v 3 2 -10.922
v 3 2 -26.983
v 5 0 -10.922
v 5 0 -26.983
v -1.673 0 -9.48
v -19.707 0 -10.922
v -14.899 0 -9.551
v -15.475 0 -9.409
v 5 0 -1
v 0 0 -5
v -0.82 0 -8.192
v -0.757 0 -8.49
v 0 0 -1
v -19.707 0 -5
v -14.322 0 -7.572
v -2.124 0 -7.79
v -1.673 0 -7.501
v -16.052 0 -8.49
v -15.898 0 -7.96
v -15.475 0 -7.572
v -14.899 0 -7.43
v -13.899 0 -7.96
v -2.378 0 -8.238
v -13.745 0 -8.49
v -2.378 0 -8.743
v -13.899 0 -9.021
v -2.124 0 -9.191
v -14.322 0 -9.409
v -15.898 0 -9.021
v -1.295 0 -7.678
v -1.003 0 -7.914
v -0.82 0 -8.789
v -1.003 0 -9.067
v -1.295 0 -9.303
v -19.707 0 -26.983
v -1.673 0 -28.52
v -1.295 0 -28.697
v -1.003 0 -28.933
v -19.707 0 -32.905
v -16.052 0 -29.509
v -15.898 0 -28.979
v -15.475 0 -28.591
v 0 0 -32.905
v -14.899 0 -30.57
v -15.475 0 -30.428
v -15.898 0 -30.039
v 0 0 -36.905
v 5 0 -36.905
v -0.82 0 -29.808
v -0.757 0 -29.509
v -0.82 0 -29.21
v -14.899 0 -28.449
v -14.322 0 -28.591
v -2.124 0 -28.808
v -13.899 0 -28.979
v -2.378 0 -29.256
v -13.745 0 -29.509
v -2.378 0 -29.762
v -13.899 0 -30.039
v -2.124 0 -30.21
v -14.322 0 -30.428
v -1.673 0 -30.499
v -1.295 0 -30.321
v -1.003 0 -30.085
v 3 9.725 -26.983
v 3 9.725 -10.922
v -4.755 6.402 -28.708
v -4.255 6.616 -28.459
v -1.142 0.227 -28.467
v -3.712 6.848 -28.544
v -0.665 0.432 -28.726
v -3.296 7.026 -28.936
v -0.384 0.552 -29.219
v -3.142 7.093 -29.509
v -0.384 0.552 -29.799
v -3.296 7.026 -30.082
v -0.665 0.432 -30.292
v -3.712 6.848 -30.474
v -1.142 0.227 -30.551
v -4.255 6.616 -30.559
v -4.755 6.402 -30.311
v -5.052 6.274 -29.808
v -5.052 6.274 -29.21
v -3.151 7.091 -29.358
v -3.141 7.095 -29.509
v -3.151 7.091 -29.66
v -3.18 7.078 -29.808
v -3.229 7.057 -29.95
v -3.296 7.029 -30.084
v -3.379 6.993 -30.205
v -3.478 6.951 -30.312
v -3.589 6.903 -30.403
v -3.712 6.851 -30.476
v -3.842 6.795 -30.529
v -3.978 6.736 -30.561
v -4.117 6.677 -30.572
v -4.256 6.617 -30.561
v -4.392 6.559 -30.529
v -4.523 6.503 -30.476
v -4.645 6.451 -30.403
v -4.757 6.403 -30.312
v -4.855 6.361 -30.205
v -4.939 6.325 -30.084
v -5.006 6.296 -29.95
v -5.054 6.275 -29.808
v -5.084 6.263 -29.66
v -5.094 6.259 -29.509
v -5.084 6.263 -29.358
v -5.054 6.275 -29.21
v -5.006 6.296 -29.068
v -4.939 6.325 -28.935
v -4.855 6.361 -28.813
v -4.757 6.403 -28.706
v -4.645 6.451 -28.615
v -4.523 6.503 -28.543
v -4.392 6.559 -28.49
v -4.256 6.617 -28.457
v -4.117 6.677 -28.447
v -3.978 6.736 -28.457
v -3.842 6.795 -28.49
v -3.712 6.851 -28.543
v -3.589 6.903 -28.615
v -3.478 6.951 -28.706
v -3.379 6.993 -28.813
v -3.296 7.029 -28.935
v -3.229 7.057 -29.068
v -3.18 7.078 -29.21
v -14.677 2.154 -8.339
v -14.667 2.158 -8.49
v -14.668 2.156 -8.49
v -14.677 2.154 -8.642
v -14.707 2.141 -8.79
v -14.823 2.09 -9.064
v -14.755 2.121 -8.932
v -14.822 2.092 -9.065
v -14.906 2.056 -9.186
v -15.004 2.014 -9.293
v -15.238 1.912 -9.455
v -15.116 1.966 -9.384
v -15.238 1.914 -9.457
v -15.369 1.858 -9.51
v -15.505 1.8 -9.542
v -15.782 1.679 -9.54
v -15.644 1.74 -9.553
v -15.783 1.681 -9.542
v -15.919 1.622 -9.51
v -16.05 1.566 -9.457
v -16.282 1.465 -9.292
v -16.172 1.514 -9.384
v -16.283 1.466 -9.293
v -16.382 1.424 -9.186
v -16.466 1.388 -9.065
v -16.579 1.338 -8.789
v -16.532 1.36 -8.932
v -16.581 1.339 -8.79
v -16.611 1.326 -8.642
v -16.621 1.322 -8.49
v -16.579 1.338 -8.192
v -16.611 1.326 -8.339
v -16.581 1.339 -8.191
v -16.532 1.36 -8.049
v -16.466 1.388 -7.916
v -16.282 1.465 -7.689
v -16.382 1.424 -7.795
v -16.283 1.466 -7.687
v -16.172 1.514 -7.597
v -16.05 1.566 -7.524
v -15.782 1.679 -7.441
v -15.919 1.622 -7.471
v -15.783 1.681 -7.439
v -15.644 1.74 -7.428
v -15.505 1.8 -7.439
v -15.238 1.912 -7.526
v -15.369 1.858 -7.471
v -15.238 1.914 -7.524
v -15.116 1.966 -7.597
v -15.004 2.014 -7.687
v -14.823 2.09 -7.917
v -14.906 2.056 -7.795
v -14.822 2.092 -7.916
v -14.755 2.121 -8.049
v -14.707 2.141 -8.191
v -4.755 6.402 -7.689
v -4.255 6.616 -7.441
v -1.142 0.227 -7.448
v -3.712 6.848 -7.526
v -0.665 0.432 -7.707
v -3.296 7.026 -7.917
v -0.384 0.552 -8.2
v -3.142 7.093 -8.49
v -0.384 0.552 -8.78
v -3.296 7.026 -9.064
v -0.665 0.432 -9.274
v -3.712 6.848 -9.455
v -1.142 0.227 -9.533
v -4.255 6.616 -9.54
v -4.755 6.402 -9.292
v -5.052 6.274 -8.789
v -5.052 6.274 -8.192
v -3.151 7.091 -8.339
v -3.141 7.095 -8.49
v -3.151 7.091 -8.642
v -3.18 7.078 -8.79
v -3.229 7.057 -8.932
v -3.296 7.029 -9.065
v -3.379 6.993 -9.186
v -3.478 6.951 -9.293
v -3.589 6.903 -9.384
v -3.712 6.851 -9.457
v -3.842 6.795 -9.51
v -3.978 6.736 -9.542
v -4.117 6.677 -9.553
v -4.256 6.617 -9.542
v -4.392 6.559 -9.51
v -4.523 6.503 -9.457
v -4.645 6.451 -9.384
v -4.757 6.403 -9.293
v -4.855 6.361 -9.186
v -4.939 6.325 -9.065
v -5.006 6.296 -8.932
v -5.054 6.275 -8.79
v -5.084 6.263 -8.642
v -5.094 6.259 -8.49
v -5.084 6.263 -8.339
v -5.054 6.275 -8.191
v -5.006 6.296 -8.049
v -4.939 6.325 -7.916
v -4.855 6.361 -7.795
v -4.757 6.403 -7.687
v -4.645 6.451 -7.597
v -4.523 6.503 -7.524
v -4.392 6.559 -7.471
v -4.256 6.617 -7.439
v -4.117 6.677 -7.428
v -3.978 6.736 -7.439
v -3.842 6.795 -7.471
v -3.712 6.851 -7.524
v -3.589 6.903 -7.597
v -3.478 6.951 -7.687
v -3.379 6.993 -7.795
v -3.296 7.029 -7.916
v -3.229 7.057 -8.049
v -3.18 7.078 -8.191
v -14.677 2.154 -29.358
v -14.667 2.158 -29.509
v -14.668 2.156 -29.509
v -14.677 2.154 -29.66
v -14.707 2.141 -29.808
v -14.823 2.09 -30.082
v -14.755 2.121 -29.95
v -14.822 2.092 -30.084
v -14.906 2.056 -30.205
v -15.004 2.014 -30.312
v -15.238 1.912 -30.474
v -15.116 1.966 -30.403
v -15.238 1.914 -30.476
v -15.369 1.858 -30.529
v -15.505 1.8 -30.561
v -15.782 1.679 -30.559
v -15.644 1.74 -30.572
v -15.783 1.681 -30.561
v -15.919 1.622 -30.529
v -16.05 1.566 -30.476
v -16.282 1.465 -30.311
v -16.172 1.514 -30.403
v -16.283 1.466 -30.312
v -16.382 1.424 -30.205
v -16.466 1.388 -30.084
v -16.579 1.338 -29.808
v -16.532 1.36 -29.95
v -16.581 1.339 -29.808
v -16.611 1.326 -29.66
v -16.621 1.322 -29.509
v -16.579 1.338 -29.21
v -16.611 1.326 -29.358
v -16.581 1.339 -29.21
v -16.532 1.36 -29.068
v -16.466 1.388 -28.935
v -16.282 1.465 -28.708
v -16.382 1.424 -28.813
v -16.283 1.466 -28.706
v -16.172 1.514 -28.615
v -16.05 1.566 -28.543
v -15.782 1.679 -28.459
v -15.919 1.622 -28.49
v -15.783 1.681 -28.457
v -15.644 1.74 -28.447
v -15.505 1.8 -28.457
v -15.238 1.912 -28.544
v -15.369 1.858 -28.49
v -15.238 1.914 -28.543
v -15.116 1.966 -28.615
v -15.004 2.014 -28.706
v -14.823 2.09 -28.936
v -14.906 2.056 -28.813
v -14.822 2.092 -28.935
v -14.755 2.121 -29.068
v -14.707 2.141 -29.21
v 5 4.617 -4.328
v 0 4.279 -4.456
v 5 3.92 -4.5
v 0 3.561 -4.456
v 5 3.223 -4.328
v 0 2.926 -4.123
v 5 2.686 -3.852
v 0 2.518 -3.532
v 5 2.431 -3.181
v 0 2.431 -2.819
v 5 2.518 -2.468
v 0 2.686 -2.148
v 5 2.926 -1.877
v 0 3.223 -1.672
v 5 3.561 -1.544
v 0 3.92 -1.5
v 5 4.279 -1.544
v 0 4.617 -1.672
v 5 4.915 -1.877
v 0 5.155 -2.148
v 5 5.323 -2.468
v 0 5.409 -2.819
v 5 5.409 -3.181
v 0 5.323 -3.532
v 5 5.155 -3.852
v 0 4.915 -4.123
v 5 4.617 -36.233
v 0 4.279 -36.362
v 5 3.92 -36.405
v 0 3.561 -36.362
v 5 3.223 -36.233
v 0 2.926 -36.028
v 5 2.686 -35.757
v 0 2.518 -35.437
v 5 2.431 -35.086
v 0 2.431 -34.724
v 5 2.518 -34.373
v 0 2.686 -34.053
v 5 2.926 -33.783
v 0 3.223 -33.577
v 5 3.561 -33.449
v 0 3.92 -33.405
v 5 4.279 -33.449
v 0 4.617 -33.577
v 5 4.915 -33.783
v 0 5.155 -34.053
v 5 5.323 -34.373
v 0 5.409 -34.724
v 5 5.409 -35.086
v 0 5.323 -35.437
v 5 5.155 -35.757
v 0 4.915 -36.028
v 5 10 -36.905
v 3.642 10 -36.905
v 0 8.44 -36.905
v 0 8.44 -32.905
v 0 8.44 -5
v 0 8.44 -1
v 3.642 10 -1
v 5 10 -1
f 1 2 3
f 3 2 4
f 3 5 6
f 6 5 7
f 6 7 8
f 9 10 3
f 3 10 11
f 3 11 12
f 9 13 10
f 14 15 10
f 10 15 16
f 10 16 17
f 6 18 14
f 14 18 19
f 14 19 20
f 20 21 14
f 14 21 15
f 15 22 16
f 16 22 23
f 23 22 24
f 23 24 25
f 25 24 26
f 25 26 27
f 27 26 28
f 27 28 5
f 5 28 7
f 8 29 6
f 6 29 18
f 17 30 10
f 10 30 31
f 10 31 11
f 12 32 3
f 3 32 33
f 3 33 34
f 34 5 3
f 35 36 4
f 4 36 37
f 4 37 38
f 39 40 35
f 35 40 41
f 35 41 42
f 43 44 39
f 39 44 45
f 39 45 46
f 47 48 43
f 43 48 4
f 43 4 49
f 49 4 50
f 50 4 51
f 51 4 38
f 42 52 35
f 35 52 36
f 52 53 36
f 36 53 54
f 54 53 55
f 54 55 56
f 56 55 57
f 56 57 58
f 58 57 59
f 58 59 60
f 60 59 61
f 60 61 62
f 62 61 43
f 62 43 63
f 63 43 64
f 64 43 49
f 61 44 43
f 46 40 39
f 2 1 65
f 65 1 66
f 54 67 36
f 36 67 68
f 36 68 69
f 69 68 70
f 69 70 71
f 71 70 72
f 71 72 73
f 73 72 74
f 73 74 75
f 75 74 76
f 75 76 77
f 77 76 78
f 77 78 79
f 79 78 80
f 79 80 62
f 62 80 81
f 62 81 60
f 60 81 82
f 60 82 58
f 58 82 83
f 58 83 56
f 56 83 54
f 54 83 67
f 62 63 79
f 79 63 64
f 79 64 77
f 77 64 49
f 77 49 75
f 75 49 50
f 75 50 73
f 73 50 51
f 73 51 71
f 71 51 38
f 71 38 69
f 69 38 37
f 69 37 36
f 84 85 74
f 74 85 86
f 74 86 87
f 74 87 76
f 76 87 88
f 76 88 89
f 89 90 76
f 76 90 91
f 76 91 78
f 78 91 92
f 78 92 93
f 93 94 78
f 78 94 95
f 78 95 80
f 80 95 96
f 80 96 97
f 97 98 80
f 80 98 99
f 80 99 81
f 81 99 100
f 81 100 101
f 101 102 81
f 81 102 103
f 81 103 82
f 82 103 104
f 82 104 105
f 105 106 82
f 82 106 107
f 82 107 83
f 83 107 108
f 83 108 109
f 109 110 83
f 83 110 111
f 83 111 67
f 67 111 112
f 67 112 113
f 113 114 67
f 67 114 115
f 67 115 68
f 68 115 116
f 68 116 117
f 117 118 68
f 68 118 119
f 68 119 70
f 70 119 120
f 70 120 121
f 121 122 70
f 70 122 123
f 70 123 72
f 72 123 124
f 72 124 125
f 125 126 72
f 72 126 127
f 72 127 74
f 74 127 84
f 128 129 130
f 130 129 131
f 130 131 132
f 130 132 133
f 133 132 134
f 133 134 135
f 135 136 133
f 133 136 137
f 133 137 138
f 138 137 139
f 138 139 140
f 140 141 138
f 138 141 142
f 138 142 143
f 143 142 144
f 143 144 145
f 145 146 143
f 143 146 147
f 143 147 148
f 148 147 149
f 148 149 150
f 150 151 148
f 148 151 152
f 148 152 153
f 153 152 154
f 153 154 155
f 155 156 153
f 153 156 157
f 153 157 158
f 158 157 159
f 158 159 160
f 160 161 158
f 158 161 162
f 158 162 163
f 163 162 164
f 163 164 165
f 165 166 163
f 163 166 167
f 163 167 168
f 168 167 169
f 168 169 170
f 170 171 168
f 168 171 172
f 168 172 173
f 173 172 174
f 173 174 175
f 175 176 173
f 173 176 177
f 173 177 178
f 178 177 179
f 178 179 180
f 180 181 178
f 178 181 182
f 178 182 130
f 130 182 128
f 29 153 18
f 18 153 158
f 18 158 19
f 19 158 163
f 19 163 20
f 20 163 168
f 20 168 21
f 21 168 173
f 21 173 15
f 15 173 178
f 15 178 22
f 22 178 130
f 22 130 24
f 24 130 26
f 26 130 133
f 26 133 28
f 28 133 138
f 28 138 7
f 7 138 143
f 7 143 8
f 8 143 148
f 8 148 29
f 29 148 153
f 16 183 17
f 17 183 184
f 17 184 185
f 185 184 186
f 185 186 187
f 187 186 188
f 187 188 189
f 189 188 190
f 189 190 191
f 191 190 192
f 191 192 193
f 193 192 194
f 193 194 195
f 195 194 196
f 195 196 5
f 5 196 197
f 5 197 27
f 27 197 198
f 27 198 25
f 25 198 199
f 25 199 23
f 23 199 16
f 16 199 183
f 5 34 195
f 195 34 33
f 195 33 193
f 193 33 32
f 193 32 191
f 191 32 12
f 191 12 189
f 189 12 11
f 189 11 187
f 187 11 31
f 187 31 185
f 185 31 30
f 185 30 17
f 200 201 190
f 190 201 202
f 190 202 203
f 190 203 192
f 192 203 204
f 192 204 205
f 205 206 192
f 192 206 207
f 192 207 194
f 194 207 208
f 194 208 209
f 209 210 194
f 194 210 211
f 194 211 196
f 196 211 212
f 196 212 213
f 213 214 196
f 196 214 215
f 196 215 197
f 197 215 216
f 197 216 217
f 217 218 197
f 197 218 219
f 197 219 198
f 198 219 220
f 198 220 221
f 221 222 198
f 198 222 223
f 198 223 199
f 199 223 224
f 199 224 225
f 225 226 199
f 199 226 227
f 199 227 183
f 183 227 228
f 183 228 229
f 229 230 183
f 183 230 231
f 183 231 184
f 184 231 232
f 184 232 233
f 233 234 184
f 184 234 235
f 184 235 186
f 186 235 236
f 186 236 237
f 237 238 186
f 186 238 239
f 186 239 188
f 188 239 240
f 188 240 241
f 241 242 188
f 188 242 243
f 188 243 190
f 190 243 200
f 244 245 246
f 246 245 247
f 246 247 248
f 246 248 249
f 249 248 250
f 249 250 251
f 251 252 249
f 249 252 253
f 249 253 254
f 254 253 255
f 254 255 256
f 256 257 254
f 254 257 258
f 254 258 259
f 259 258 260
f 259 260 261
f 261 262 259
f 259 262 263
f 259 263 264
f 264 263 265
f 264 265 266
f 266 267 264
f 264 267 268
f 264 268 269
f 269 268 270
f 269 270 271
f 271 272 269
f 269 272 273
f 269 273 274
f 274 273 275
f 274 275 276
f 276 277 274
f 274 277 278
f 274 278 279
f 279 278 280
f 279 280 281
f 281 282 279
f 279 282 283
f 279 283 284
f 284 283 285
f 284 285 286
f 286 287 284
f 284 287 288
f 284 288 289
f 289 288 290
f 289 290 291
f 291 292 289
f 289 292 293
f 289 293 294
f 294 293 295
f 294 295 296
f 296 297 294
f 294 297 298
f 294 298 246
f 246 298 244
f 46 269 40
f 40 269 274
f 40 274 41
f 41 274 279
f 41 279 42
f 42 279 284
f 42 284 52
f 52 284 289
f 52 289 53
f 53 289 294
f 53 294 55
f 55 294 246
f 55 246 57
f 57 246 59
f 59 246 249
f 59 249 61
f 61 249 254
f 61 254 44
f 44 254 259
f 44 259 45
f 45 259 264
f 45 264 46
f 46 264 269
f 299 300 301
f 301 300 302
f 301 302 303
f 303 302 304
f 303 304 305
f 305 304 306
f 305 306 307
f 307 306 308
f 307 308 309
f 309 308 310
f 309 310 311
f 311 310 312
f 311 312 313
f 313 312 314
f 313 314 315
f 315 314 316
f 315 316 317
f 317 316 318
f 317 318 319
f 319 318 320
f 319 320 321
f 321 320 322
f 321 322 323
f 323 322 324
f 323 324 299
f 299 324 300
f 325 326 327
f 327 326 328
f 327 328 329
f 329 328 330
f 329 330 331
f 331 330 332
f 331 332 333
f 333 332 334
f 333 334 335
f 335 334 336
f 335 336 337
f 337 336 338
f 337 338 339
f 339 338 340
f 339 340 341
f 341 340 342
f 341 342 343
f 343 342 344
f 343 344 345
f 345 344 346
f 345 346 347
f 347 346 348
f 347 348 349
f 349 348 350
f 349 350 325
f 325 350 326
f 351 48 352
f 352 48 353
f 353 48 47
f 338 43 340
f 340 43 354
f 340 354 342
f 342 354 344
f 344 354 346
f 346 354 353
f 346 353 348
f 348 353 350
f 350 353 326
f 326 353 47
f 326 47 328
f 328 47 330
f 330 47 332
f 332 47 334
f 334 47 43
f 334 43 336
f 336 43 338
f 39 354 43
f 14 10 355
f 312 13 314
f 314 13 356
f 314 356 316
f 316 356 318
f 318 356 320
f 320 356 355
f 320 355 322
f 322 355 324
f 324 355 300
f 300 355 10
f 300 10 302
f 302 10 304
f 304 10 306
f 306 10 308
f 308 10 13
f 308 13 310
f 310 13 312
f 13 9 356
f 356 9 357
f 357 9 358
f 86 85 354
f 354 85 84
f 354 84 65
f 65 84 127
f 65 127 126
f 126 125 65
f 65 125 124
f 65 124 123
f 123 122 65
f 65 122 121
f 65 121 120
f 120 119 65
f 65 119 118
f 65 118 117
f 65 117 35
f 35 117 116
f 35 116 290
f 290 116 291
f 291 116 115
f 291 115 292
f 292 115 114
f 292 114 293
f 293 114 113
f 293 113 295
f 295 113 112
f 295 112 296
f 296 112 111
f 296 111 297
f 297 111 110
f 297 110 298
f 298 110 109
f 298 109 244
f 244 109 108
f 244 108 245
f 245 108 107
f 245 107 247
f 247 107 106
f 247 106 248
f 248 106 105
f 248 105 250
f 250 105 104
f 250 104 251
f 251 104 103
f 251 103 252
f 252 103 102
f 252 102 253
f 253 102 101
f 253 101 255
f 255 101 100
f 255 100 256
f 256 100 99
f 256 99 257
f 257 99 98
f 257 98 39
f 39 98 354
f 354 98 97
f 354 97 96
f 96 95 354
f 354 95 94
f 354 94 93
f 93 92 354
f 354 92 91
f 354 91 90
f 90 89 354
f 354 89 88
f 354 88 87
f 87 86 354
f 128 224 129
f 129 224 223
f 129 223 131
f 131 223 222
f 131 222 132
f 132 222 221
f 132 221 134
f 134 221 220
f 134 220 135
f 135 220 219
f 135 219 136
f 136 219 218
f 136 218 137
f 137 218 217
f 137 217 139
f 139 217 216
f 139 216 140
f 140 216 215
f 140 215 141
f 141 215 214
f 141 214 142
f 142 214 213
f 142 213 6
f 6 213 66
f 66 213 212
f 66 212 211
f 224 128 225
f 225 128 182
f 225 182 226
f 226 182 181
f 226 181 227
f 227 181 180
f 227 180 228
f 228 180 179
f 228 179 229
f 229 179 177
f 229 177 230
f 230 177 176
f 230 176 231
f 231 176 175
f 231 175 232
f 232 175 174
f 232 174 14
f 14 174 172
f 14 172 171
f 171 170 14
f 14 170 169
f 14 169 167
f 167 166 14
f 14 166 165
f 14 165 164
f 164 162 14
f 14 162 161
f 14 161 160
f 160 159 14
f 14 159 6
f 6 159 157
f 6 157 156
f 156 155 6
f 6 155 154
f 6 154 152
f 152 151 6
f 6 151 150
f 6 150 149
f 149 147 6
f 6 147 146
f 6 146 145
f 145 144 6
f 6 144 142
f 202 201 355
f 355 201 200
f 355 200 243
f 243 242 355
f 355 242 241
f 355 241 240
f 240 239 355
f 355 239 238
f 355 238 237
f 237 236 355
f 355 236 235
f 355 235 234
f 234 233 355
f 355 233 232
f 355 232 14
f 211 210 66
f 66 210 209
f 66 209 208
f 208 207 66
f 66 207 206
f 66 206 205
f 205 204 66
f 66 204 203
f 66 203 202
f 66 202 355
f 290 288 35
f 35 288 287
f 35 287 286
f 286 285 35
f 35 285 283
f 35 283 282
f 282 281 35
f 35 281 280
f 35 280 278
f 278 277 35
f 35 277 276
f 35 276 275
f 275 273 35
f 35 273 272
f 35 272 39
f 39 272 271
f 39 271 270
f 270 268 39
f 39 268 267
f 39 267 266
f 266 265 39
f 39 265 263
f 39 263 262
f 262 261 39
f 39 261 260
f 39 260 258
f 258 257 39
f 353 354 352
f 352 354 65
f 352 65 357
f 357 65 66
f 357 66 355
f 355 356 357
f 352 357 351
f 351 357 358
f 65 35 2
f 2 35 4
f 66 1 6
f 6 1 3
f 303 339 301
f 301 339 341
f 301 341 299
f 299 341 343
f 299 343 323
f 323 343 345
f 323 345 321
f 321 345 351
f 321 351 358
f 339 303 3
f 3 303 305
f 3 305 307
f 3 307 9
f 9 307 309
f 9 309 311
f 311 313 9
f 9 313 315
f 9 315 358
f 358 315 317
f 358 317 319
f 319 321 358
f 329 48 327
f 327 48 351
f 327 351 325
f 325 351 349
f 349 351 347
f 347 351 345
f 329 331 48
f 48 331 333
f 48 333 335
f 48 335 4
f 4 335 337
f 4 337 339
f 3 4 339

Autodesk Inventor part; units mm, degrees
ref_plane "YZ Plane" through (0, 0, 0) normal (1, 0, 0) x (0, 1, 0)
ref_plane "XZ Plane" through (0, 0, 0) normal (0, 1, 0) x (-1, 0, 0)
sketch "Sketch2" plane through (0, 0, 0) normal (0, 1, 0) x (-1, 0, 0)
  line L0 (0, 0) -> (23.273, 0)
  line L1 (23.273, 0) -> (23.273, -37.9053)
  line L2 (23.273, -37.9053) -> (0, -37.9053)
  line L3 (0, -37.9053) -> (0, 0)
  line L4 (26.75, 0) -> (-5, 0)
  line L5 (-5, 0) -> (-5, -37.9053)
  line L6 (-5, -37.9053) -> (26.75, -37.9053)
  line L7 (26.75, -37.9053) -> (26.75, 0)
  point P0 (0, -37.9053)
  dimension "d21" = 37.9053
  dimension "d22" = 23.273
  dimension "d36" = 5
  dimension "d37" = 31.75
extrude "Extrusion1" add sketch "Sketch2" along normal blind 10
sketch "Sketch6" plane through (-26.75, 0, 0) normal (0, 0, 1) x (1, 0, 0)
  line L0 (31.75, 0) -> (31.75, 10) projected
  line L1 (31.75, 0) -> (31.75, 10)
  line L2 (31.75, 0) -> (0, 0) projected
  line L3 (30.3918, 0) -> (30.3918, 10)
  line L4 (31.75, 10) -> (0, 10) projected
  line L5 (30.3918, 10) -> (55.3918, 10) construction
  line L6 (0, 0) -> (0, 10) projected
  line L7 (0, 0) -> (0, 0.5)
  line L8 (30.3918, 10) -> (7.0432, 0)
  point P0 (26.75, 0)
  dimension "d38" = 1.3582
  dimension "d41" = 0.5
  dimension "d96" = 25.4
  dimension "d97" = 66.815
extrude "Extrusion2" cut sketch "Sketch6" against normal up to surface (37.9053 mm away) contours L8 L2 L6 L4
sketch "Sketch8" plane through (0, 0, 0) normal (0, -1, 0) x (1, 0, 0)
  line L0 (-26.75, -37.9053) -> (-26.75, 0) projected
  line L1 (-26.75, -10.922) -> (3, -10.922)
  line L2 (3, -10.922) -> (3, -26.9833)
  line L3 (3, -26.9833) -> (-26.75, -26.9833)
  line L4 (-26.75, -26.9833) -> (-26.75, -10.922)
  line L5 (-26.75, 0) -> (5, 0) projected
  line L6 (5, -37.9053) -> (-26.75, -37.9053) projected
  line L7 (5, 0) -> (5, -37.9053) projected
  point P0 (0, 0)
  point P1 (-26.75, -26.9833)
  dimension "d44" = 10.922
  dimension "d45" = 10.922
  dimension "d46" = 2
extrude "Extrusion3" cut sketch "Sketch8" against normal blind 25.4 contours L0 L1 L2 L3
ref_plane "Work Plane1" through (4.3209, 10, 0) normal (0, 1, 0) x (1, 0, 0)
sketch "Sketch12" plane through (0, 0, 0) normal (0, -1, 0) x (1, 0, 0)
  line L0 (3.6418, 0) -> (-26.75, 0) projected
  line L1 (-26.75, 0) -> (0, 0)
  line L2 (0, 0) -> (0, -5)
  line L3 (0, -5) -> (-26.75, -5)
  line L4 (-26.75, -5) -> (-26.75, 0)
  line L5 (-26.75, -37.9053) -> (0, -37.9053)
  line L6 (0, -37.9053) -> (0, -32.9053)
  line L7 (0, -32.9053) -> (-26.75, -32.9053)
  line L8 (-26.75, -32.9053) -> (-26.75, -37.9053)
  line L9 (5, 0) -> (0, 0)
  line L10 (0, 0) -> (0, -1)
  line L11 (0, -1) -> (5, -1)
  line L12 (5, -1) -> (5, 0)
  line L13 (5, 0) -> (5, -37.9053) projected
  line L14 (5, -37.9053) -> (0, -37.9053)
  line L15 (0, -37.9053) -> (0, -36.9053)
  line L16 (0, -36.9053) -> (5, -36.9053)
  line L17 (5, -36.9053) -> (5, -37.9053)
  line L18 (5, -37.9053) -> (-26.75, -37.9053) projected
  point P0 (0, -37.9053)
  dimension "d69" = 5
  dimension "d70" = 5
  dimension "d73" = 1
  dimension "d74" = 1
  dimension "d75" = 0
extrude "Extrusion6" cut sketch "Sketch12" along normal through all both and the other way through all
sketch "Sketch13" plane through (0, 0, -36.9053) normal (-1, 0, 0) x (0, 0, 1)
  circle A0 centre (2, 3.9204) radius 1.5
  circle A1 centre (33.9053, 3.9204) radius 1.5
  line L0 (35.9053, 0) -> (31.9053, 0) projected
  line L1 (31.9053, 7.8408) -> (35.9053, 7.8408) projected
  line L2 (35.9053, 8.4402) -> (35.9053, 0) projected
  line L3 (31.9053, 2) -> (31.9053, 7.8408) projected
  line L4 (0, 0) -> (0, 8.4402) projected
  line L5 (0, 7.8408) -> (4, 7.8408) projected
  line L6 (4, 0) -> (0, 0) projected
  point P0 (36.9053, 0)
  point P1 (35.9053, 8.636)
  point P2 (0, 8.636)
  dimension "d80" = 3
  dimension "d81" = 3
  dimension "d82" = 7.8408
  dimension "d83" = 3.9204
  dimension "d84" = 4
  dimension "d85" = 2
  dimension "d86" = 2
  dimension "d87" = 3.9204
  dimension "d88" = 31.9053
  dimension "d148" = 3.9204
extrude "Extrusion7" cut sketch "Sketch13" against normal blind 25.4
sketch "Sketch15" plane through (3, 9.7251, -10.922) normal (-0.3937008, 0.9192386, 0) x (0.9192386, 0.3937008, 0)
  circle A0 centre (-20.2819, -2.4315) radius 1.1146
  circle A1 centre (-7.7426, 18.5871) radius 1.229
  line L0 (-20.2819, -2.4315) -> (-20.2819, 18.5871)
  line L1 (-20.2819, 18.5871) -> (-7.7426, 18.5871)
  line L2 (-7.7426, 18.5871) -> (-7.7426, -2.4315)
  line L3 (-7.7426, -2.4315) -> (-20.2819, -2.4315)
  line L4 (-12.8147, 2.62) -> (-12.8147, 13.4413)
  line L5 (-12.8147, 13.4413) -> (-2.3681, 13.4413)
  line L6 (-2.3681, 13.4413) -> (-2.3681, 2.62)
  line L7 (-2.3681, 2.62) -> (-12.8147, 2.62)
  line L8 (-22.0533, -4.4694) -> (-22.0533, 20.5306)
  line L9 (-22.0533, 20.5306) -> (1.9467, 20.5306)
  line L10 (1.9467, 20.5306) -> (1.9467, -4.4694)
  line L11 (1.9467, -4.4694) -> (-22.0533, -4.4694)
  line L12 (-3.2636, 21.9833) -> (-24.7018, 21.9833) projected
  line L13 (-24.7018, -5.922) -> (-3.2636, -5.922) projected
  circle A2 centre (-20.2819, 18.5871) radius 1.1245
  line L14 (0, 16.0613) -> (0, 0) projected
  line L15 (1.9467, -9.922) -> (1.9467, 25.9833) projected
  circle A3 centre (-7.7426, -2.4315) radius 1.1245
  point P0 (-6.5865, -10.922)
  dimension "d107" = 21.0186
  dimension "d108" = 12.5392
  dimension "d110" = 25
  dimension "d111" = 24
  dimension "d112" = 4.3148
  dimension "d113" = 9.2386
  dimension "d114" = 7.0893
  dimension "d115" = 7.0893
  dimension "d117" = 1.9436
  dimension "d118" = 2.0378
  dimension "d119" = 1.7714
  dimension "d120" = 9.6893
  dimension "d122" = 1.4526
  dimension "d123" = 1.4526
  dimension "d124" = 2.249
  dimension "d133" = 0
  dimension "d134" = 2.249
hole "Hole3" at (-15.6439, 1.7401, -8.4905) at (-4.1173, 6.6768, -8.4905) at (-4.1173, 6.6768, -29.5091) at (-15.6439, 1.7401, -29.5091) direction (0.3937008, -0.9192386, 0) diameter 2.1211 depth 7.1 tip angle 118 countersink diameter 2.125 countersink angle 90 thread size "M2.5x0.35" class "6H" standard "ANSI Metric M Profile"
chamfer "Chamfer3" distance 2 distance2 2 1 edges at (3, 0, -18.9526) measured on face at (4.3333, 0, -21.6295)
equation "\"d83\" = 0.5 * d82"
equation "\"d85\" = 0.5 * d84"
equation "\"d86\" = d85"
equation "\"d87\" = d83"
equation "\"d115\" = d114"
equation "\"d122\" = d123"
properties part number "Camera Angle"
